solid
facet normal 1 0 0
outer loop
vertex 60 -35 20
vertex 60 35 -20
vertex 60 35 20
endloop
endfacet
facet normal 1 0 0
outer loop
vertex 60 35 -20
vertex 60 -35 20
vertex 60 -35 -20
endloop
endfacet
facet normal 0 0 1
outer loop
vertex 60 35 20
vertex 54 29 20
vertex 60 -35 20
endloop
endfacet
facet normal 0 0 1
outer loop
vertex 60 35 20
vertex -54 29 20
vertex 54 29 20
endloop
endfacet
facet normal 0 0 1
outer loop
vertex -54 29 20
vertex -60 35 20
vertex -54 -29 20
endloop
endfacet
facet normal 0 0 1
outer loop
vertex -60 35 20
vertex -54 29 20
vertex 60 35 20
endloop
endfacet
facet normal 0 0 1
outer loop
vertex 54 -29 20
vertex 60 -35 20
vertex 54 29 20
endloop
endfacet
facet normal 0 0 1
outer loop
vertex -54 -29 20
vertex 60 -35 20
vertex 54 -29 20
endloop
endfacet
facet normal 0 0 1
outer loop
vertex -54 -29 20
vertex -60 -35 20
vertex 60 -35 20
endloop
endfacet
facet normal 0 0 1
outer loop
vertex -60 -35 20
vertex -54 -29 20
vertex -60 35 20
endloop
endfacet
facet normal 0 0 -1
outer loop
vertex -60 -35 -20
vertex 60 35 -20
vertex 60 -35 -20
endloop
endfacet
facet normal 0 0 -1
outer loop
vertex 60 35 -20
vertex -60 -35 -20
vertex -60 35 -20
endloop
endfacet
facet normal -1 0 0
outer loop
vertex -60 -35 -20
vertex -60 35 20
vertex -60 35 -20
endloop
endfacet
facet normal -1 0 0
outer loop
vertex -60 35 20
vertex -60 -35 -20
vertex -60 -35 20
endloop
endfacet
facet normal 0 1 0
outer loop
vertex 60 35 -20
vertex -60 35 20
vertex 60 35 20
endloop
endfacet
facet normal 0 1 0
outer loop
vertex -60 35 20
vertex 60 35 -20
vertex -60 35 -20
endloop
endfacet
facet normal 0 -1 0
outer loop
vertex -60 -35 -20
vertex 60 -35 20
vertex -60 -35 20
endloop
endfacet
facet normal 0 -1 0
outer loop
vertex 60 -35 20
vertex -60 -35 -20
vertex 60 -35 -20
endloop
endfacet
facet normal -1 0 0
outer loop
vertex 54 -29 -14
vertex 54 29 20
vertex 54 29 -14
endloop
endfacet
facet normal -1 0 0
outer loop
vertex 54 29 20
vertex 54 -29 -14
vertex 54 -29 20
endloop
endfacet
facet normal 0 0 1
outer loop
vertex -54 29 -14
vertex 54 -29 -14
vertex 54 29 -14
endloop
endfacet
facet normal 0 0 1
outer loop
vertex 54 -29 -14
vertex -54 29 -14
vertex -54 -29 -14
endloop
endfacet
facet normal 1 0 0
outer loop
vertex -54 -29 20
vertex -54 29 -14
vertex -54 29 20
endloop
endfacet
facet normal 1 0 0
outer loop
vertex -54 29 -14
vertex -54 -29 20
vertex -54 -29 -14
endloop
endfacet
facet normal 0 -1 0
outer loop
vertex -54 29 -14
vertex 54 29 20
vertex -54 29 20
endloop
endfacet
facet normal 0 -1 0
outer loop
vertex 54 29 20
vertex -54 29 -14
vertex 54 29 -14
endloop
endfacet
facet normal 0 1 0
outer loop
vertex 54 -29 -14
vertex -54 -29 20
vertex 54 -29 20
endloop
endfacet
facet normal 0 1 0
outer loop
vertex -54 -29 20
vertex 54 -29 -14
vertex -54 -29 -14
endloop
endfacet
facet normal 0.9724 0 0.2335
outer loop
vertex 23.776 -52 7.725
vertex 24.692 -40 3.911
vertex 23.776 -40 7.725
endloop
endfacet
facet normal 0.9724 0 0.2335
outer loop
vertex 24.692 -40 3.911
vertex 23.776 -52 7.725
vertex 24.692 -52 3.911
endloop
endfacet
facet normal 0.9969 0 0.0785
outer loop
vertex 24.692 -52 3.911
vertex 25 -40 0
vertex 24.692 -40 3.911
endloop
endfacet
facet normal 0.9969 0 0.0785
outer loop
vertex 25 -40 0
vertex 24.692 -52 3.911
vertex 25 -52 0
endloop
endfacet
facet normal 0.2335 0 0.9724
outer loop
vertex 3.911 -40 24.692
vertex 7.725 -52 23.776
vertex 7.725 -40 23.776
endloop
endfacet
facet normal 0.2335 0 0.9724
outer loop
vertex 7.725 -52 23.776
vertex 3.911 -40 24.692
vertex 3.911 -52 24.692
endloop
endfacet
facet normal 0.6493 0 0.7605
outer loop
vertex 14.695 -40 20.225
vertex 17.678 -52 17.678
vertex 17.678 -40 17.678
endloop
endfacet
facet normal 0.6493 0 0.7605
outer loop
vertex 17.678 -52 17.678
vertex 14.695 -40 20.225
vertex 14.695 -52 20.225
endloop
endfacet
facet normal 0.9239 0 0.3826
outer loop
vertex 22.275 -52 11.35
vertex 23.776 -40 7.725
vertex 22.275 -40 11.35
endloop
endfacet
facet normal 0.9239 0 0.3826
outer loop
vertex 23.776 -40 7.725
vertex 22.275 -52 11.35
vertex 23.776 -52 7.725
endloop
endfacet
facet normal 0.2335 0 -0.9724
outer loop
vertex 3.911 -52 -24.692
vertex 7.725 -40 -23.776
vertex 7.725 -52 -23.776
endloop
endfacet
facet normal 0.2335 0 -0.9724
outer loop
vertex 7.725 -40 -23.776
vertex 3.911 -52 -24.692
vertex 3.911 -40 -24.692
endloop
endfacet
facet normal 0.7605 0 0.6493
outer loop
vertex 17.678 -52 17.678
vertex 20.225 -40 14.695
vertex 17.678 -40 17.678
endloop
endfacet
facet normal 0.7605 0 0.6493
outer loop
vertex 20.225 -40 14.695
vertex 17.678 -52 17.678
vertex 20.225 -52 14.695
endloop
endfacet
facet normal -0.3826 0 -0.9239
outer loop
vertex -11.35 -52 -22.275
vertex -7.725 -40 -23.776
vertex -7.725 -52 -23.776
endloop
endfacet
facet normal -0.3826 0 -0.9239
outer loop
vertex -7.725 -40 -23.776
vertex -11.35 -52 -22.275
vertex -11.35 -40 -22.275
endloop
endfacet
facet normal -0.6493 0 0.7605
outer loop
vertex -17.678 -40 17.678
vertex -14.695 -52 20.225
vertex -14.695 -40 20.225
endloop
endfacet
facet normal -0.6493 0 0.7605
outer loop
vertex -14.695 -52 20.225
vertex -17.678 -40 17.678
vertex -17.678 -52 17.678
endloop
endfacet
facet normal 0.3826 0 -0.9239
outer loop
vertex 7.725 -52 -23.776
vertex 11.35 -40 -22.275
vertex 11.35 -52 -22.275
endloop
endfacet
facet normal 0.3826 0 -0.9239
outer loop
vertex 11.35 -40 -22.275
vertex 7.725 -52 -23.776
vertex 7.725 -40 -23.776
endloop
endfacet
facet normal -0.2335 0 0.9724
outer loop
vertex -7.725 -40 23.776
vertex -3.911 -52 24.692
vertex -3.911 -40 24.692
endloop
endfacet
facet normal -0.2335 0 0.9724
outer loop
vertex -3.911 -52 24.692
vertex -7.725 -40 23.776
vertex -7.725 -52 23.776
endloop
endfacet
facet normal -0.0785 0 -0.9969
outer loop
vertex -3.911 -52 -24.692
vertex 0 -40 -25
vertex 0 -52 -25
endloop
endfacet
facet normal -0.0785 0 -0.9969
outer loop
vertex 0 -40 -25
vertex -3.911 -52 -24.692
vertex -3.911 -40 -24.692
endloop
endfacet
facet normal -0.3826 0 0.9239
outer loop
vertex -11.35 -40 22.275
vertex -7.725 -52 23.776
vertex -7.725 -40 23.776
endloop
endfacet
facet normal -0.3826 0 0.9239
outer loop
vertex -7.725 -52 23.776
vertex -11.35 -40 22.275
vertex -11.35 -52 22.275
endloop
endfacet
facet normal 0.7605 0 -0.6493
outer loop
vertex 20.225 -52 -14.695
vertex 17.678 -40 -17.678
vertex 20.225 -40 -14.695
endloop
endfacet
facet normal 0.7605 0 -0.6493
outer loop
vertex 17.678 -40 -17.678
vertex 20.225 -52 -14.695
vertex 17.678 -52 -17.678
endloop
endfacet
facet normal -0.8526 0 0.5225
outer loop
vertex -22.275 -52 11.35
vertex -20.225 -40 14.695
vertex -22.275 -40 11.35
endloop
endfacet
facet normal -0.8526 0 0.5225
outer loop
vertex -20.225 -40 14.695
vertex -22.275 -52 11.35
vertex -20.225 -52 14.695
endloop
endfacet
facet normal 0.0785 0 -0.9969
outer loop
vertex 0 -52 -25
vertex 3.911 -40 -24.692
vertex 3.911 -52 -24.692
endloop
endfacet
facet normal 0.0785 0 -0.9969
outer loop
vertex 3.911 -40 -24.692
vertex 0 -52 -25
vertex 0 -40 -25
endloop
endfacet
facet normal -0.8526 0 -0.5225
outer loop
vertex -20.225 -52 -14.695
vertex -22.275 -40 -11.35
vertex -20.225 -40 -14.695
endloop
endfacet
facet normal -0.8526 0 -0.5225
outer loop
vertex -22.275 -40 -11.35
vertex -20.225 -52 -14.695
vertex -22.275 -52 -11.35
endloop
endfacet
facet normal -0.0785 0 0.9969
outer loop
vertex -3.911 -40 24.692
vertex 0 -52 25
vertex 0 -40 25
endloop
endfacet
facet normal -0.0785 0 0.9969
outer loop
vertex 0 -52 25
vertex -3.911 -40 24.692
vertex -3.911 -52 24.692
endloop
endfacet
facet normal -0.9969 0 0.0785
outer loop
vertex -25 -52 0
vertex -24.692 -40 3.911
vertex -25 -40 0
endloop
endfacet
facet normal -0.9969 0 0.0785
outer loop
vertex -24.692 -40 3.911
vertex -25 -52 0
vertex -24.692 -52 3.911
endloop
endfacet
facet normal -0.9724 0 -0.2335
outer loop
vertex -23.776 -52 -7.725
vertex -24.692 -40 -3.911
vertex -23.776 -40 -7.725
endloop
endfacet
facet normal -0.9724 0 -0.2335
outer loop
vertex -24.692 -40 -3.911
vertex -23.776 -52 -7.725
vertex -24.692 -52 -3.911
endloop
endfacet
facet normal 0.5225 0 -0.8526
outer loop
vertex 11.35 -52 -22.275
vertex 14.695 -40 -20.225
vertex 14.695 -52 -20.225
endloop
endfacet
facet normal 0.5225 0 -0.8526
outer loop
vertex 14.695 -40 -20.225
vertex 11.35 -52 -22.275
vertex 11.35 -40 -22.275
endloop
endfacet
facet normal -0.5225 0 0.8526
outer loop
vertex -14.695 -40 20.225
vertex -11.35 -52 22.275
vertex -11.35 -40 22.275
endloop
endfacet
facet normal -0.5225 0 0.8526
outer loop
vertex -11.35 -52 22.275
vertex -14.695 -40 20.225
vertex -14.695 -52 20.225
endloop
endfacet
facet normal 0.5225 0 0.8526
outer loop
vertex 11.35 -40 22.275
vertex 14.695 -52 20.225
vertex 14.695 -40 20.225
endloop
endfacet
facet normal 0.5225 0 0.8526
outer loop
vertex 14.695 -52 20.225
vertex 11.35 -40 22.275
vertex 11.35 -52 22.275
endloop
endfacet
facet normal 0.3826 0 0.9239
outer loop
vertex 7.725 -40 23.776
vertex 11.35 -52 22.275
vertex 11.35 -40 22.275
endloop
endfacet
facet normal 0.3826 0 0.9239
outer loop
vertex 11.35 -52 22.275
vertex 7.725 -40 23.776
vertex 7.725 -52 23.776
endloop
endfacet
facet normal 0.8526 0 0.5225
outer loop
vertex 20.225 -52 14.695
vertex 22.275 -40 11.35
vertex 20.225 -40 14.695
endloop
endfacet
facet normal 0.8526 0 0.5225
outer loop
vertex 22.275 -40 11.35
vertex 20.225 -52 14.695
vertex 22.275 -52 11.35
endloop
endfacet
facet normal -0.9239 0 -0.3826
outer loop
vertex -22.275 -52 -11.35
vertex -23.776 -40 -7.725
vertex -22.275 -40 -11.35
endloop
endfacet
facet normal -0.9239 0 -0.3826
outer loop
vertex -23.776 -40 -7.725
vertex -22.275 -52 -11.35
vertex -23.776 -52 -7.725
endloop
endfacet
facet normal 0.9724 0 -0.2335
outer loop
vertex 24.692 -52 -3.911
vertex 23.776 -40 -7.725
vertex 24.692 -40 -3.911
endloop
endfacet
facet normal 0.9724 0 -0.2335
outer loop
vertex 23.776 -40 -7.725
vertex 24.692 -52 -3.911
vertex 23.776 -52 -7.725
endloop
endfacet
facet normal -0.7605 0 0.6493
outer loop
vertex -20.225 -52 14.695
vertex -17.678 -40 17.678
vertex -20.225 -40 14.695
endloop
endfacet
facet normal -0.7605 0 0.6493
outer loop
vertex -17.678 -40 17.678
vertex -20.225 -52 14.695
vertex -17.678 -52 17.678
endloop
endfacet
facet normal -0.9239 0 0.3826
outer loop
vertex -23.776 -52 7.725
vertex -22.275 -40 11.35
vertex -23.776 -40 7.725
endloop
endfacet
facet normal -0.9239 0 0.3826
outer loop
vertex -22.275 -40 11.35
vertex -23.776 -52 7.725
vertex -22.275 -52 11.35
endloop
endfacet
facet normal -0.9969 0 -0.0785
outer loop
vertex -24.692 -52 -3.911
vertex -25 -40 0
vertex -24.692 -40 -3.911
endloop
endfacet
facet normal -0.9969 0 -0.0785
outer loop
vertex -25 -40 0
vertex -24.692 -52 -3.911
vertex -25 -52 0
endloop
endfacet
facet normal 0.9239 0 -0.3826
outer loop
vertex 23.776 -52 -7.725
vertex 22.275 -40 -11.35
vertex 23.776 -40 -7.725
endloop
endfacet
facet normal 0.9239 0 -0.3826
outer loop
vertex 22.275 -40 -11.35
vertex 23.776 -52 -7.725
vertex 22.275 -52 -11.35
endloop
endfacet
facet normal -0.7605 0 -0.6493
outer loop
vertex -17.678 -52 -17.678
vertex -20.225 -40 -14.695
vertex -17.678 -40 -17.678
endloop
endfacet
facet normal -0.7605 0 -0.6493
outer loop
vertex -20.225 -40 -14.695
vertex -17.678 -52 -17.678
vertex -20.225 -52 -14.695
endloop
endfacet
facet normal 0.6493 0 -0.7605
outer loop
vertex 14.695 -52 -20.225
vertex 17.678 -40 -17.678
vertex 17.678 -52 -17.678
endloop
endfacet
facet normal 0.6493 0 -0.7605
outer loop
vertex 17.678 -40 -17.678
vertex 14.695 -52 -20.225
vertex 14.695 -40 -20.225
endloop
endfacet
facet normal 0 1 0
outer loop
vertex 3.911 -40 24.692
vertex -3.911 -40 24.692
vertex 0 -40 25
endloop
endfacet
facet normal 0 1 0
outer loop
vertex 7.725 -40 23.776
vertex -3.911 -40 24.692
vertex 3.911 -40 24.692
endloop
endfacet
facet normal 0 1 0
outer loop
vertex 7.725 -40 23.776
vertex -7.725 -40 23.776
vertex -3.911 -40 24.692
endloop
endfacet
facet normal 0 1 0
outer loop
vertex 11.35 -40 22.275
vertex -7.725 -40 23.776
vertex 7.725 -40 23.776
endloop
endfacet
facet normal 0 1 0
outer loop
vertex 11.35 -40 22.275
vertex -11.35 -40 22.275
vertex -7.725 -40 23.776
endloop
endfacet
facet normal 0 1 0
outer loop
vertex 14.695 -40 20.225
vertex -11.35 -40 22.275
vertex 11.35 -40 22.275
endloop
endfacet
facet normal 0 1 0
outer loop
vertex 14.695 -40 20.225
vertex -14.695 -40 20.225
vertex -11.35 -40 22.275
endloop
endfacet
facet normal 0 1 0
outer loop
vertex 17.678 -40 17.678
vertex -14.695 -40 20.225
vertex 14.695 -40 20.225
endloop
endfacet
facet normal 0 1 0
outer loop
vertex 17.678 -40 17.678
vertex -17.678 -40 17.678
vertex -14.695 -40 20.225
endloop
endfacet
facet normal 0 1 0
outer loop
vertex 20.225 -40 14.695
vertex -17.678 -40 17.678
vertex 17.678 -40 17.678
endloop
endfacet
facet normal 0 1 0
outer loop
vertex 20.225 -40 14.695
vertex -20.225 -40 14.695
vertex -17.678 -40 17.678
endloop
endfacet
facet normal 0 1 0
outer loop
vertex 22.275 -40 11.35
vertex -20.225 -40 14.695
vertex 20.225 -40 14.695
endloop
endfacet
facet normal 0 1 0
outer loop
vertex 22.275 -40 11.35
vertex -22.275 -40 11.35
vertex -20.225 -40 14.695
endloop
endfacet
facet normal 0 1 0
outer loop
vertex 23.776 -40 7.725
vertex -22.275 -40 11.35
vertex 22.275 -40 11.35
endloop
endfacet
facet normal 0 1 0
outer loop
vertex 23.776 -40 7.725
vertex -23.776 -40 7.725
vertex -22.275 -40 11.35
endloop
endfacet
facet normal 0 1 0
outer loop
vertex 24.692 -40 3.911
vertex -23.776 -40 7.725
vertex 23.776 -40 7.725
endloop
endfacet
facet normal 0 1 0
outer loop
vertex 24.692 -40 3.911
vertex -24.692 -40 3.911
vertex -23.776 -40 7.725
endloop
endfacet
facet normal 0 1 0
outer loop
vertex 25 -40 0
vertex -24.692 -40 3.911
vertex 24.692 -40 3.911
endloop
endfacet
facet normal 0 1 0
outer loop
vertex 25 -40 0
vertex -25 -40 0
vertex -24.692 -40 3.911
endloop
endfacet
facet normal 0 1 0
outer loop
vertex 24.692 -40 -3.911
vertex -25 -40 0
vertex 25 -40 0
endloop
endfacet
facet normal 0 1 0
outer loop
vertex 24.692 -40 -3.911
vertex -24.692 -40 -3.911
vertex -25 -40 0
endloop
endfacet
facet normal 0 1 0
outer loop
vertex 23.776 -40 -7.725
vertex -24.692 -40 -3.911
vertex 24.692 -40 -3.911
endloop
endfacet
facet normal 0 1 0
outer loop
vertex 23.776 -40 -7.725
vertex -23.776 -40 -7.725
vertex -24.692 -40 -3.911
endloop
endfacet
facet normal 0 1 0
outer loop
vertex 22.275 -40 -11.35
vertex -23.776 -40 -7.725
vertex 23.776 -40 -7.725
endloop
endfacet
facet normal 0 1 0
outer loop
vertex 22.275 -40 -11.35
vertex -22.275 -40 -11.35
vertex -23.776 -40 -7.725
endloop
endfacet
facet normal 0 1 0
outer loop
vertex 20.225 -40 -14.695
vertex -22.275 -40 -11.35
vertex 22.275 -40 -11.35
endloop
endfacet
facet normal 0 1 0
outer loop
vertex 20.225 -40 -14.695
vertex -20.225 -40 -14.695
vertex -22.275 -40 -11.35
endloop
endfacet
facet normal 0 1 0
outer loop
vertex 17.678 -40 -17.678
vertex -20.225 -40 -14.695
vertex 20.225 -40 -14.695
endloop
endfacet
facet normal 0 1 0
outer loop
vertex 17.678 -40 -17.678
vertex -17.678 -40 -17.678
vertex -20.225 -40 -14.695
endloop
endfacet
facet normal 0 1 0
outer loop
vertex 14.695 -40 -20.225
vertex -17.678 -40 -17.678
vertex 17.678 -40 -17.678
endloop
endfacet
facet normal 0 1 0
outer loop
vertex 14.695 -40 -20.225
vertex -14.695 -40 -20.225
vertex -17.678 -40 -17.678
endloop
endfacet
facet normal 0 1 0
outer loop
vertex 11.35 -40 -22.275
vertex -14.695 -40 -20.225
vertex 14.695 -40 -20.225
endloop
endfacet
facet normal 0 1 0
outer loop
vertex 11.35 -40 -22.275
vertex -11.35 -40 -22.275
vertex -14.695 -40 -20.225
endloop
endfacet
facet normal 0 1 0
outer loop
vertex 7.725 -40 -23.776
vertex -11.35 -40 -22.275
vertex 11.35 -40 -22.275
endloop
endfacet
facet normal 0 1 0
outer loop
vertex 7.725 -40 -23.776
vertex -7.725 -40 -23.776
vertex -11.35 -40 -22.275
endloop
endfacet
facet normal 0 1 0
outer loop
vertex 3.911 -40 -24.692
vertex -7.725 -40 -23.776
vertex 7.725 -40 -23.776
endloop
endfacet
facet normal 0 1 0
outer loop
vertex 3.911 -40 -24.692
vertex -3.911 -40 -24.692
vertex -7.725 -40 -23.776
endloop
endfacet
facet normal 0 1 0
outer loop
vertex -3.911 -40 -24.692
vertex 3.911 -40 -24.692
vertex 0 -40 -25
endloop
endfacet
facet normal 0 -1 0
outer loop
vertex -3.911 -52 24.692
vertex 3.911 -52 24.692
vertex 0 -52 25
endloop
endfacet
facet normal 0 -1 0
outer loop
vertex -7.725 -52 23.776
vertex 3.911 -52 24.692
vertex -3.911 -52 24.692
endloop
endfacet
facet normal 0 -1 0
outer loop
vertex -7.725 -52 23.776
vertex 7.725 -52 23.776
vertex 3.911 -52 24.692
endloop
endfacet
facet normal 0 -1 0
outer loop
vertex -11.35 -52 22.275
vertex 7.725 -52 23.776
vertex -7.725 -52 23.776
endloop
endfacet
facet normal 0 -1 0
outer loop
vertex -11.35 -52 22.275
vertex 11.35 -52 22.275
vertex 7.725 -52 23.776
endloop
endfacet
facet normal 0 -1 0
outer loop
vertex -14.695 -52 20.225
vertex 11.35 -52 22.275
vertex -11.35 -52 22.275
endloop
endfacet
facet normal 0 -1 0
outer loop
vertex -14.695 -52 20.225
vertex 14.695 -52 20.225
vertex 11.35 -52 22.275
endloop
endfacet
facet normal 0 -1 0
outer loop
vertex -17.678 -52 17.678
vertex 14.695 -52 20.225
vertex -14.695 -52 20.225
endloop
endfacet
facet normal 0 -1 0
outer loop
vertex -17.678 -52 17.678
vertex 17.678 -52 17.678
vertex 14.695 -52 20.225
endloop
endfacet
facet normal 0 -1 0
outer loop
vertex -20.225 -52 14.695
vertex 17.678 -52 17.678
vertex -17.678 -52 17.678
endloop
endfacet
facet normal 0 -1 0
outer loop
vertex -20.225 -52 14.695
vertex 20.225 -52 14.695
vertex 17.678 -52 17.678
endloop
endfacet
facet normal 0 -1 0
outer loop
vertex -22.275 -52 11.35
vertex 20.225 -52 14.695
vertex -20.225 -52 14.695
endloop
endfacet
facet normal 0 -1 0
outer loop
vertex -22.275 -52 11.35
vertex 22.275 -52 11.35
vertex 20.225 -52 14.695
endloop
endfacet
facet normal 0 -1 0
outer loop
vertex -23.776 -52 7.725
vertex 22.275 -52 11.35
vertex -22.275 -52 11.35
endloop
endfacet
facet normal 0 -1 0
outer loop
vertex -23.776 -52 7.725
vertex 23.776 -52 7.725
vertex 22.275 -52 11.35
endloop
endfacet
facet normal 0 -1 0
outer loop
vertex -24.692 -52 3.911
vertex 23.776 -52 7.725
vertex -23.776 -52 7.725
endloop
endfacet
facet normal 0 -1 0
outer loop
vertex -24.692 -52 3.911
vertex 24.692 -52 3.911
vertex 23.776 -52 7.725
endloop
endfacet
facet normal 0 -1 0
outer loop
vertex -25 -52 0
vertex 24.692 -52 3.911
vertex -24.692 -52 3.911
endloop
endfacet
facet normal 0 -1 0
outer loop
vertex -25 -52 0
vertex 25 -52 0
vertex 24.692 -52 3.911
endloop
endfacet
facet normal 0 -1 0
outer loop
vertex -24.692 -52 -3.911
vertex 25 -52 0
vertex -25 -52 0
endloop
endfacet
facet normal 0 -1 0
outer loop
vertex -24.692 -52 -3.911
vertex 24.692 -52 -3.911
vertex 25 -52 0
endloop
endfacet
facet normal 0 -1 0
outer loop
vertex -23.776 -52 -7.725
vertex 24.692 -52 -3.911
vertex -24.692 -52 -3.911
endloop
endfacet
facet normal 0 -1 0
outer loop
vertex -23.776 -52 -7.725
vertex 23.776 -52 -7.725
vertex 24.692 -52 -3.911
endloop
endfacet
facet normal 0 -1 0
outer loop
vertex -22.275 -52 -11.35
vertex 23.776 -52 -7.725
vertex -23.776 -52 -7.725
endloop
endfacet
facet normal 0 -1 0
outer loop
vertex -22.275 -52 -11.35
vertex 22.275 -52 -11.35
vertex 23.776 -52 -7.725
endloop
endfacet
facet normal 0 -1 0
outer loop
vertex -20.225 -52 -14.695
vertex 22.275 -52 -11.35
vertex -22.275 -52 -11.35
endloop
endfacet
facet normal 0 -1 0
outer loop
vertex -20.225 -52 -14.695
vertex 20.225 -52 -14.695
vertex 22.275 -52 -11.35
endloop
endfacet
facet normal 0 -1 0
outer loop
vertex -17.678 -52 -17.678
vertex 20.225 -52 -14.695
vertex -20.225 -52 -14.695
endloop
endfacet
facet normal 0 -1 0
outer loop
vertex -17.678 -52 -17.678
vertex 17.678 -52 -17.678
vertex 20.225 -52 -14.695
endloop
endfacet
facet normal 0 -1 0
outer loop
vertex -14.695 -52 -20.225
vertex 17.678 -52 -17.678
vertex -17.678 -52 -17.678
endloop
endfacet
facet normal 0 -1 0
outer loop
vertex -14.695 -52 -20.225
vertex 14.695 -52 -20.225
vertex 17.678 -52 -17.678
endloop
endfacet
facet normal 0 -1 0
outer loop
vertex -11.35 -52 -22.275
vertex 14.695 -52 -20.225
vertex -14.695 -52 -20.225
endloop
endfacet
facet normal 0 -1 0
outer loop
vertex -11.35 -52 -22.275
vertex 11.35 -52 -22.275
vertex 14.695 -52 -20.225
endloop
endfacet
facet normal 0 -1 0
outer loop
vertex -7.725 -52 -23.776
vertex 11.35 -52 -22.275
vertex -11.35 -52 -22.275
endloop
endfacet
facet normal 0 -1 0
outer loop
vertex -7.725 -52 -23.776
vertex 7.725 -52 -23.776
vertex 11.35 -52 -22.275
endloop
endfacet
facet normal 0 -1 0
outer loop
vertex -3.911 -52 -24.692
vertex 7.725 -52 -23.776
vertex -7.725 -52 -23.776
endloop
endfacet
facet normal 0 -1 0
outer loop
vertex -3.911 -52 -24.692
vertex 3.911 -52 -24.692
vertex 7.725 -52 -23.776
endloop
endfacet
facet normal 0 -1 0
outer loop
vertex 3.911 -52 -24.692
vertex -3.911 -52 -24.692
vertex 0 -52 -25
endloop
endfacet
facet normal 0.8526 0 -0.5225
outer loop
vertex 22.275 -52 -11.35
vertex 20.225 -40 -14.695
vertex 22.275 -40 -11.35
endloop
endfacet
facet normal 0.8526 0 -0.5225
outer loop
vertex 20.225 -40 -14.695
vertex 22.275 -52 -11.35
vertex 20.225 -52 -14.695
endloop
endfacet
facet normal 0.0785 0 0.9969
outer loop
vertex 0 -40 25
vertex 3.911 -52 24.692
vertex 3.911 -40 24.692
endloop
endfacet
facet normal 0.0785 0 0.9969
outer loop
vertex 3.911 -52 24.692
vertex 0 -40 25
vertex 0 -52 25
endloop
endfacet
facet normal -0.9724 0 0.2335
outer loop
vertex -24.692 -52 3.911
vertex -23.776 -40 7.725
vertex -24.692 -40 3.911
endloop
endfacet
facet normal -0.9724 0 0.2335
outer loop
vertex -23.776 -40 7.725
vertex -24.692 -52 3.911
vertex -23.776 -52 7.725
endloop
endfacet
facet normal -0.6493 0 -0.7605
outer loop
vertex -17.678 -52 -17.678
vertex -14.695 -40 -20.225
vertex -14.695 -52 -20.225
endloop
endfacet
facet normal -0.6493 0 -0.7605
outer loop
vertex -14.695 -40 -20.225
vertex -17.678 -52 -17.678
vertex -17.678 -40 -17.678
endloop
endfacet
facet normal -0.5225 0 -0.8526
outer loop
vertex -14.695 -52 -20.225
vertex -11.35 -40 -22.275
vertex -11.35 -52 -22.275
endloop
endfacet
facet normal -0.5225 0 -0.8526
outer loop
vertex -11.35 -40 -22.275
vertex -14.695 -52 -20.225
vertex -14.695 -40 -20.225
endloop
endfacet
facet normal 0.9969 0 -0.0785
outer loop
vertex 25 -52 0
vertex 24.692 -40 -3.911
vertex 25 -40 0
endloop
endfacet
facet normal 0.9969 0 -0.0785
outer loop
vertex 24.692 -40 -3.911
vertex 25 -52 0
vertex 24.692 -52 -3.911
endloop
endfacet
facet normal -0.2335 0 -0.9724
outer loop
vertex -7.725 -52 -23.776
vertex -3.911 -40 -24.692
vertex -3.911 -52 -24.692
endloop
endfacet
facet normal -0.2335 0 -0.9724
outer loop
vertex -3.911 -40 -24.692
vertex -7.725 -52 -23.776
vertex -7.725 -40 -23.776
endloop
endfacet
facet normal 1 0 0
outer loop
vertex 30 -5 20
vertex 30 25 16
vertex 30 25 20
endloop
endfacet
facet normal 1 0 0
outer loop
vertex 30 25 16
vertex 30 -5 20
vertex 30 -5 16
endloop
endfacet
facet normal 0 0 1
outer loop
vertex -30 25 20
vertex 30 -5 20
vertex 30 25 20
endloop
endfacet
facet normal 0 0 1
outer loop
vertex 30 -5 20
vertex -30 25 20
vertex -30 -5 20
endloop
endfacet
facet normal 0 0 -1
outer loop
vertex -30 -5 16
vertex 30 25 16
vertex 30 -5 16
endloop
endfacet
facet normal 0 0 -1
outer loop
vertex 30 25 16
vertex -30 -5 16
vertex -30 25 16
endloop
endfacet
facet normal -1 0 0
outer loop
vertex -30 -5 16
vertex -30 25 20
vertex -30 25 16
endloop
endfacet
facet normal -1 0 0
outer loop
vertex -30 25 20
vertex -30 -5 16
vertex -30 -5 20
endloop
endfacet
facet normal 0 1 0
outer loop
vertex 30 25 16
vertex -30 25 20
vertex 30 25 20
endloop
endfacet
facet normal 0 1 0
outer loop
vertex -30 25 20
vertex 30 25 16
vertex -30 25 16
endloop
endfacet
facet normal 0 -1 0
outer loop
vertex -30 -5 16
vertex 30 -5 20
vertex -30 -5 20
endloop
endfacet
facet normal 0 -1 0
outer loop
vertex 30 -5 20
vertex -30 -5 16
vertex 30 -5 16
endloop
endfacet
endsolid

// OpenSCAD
// ISM-SNR-1 sonar enclosure + structural study — #40
// Units: mm. Handheld box + transducer face + ghost ribs/tray/bezel.
// No quieting geometry, array SP, or weapons solids.

module enclosure_body() {
    difference() {
        cube([120, 70, 40], center = true);
        translate([0, 0, 4])
            cube([108, 58, 36], center = true);
    }
}

module transducer_face() {
    translate([0, -40, 0])
        rotate([90, 0, 0])
            cylinder(h = 12, d = 50, $fn = 40);
}

module display_window() {
    translate([0, 10, 18])
        cube([60, 30, 4], center = true);
}

module enclosure_ribs() {
    for (x = [-40, 0, 40])
        translate([x, 0, -8])
            cube([3, 50, 20], center = true);
}

module echo_board_tray() {
    translate([0, 5, -12])
        cube([80, 40, 3], center = true);
}

module display_bezel() {
    translate([0, 10, 20])
        difference() {
            cube([66, 36, 3], center = true);
            cube([54, 24, 4], center = true);
        }
}

module hull_mount_pads() {
    for (xy = [[-45, -25], [45, -25], [-45, 25], [45, 25]])
        translate([xy[0], xy[1], -22])
            cylinder(h = 4, d = 10, $fn = 20);
}

echo("#40: sonar structural study — ribs/tray/bezel; no quieting/weapons");
enclosure_body();
transducer_face();
display_window();
%enclosure_ribs();
%echo_board_tray();
%display_bezel();
%hull_mount_pads();
